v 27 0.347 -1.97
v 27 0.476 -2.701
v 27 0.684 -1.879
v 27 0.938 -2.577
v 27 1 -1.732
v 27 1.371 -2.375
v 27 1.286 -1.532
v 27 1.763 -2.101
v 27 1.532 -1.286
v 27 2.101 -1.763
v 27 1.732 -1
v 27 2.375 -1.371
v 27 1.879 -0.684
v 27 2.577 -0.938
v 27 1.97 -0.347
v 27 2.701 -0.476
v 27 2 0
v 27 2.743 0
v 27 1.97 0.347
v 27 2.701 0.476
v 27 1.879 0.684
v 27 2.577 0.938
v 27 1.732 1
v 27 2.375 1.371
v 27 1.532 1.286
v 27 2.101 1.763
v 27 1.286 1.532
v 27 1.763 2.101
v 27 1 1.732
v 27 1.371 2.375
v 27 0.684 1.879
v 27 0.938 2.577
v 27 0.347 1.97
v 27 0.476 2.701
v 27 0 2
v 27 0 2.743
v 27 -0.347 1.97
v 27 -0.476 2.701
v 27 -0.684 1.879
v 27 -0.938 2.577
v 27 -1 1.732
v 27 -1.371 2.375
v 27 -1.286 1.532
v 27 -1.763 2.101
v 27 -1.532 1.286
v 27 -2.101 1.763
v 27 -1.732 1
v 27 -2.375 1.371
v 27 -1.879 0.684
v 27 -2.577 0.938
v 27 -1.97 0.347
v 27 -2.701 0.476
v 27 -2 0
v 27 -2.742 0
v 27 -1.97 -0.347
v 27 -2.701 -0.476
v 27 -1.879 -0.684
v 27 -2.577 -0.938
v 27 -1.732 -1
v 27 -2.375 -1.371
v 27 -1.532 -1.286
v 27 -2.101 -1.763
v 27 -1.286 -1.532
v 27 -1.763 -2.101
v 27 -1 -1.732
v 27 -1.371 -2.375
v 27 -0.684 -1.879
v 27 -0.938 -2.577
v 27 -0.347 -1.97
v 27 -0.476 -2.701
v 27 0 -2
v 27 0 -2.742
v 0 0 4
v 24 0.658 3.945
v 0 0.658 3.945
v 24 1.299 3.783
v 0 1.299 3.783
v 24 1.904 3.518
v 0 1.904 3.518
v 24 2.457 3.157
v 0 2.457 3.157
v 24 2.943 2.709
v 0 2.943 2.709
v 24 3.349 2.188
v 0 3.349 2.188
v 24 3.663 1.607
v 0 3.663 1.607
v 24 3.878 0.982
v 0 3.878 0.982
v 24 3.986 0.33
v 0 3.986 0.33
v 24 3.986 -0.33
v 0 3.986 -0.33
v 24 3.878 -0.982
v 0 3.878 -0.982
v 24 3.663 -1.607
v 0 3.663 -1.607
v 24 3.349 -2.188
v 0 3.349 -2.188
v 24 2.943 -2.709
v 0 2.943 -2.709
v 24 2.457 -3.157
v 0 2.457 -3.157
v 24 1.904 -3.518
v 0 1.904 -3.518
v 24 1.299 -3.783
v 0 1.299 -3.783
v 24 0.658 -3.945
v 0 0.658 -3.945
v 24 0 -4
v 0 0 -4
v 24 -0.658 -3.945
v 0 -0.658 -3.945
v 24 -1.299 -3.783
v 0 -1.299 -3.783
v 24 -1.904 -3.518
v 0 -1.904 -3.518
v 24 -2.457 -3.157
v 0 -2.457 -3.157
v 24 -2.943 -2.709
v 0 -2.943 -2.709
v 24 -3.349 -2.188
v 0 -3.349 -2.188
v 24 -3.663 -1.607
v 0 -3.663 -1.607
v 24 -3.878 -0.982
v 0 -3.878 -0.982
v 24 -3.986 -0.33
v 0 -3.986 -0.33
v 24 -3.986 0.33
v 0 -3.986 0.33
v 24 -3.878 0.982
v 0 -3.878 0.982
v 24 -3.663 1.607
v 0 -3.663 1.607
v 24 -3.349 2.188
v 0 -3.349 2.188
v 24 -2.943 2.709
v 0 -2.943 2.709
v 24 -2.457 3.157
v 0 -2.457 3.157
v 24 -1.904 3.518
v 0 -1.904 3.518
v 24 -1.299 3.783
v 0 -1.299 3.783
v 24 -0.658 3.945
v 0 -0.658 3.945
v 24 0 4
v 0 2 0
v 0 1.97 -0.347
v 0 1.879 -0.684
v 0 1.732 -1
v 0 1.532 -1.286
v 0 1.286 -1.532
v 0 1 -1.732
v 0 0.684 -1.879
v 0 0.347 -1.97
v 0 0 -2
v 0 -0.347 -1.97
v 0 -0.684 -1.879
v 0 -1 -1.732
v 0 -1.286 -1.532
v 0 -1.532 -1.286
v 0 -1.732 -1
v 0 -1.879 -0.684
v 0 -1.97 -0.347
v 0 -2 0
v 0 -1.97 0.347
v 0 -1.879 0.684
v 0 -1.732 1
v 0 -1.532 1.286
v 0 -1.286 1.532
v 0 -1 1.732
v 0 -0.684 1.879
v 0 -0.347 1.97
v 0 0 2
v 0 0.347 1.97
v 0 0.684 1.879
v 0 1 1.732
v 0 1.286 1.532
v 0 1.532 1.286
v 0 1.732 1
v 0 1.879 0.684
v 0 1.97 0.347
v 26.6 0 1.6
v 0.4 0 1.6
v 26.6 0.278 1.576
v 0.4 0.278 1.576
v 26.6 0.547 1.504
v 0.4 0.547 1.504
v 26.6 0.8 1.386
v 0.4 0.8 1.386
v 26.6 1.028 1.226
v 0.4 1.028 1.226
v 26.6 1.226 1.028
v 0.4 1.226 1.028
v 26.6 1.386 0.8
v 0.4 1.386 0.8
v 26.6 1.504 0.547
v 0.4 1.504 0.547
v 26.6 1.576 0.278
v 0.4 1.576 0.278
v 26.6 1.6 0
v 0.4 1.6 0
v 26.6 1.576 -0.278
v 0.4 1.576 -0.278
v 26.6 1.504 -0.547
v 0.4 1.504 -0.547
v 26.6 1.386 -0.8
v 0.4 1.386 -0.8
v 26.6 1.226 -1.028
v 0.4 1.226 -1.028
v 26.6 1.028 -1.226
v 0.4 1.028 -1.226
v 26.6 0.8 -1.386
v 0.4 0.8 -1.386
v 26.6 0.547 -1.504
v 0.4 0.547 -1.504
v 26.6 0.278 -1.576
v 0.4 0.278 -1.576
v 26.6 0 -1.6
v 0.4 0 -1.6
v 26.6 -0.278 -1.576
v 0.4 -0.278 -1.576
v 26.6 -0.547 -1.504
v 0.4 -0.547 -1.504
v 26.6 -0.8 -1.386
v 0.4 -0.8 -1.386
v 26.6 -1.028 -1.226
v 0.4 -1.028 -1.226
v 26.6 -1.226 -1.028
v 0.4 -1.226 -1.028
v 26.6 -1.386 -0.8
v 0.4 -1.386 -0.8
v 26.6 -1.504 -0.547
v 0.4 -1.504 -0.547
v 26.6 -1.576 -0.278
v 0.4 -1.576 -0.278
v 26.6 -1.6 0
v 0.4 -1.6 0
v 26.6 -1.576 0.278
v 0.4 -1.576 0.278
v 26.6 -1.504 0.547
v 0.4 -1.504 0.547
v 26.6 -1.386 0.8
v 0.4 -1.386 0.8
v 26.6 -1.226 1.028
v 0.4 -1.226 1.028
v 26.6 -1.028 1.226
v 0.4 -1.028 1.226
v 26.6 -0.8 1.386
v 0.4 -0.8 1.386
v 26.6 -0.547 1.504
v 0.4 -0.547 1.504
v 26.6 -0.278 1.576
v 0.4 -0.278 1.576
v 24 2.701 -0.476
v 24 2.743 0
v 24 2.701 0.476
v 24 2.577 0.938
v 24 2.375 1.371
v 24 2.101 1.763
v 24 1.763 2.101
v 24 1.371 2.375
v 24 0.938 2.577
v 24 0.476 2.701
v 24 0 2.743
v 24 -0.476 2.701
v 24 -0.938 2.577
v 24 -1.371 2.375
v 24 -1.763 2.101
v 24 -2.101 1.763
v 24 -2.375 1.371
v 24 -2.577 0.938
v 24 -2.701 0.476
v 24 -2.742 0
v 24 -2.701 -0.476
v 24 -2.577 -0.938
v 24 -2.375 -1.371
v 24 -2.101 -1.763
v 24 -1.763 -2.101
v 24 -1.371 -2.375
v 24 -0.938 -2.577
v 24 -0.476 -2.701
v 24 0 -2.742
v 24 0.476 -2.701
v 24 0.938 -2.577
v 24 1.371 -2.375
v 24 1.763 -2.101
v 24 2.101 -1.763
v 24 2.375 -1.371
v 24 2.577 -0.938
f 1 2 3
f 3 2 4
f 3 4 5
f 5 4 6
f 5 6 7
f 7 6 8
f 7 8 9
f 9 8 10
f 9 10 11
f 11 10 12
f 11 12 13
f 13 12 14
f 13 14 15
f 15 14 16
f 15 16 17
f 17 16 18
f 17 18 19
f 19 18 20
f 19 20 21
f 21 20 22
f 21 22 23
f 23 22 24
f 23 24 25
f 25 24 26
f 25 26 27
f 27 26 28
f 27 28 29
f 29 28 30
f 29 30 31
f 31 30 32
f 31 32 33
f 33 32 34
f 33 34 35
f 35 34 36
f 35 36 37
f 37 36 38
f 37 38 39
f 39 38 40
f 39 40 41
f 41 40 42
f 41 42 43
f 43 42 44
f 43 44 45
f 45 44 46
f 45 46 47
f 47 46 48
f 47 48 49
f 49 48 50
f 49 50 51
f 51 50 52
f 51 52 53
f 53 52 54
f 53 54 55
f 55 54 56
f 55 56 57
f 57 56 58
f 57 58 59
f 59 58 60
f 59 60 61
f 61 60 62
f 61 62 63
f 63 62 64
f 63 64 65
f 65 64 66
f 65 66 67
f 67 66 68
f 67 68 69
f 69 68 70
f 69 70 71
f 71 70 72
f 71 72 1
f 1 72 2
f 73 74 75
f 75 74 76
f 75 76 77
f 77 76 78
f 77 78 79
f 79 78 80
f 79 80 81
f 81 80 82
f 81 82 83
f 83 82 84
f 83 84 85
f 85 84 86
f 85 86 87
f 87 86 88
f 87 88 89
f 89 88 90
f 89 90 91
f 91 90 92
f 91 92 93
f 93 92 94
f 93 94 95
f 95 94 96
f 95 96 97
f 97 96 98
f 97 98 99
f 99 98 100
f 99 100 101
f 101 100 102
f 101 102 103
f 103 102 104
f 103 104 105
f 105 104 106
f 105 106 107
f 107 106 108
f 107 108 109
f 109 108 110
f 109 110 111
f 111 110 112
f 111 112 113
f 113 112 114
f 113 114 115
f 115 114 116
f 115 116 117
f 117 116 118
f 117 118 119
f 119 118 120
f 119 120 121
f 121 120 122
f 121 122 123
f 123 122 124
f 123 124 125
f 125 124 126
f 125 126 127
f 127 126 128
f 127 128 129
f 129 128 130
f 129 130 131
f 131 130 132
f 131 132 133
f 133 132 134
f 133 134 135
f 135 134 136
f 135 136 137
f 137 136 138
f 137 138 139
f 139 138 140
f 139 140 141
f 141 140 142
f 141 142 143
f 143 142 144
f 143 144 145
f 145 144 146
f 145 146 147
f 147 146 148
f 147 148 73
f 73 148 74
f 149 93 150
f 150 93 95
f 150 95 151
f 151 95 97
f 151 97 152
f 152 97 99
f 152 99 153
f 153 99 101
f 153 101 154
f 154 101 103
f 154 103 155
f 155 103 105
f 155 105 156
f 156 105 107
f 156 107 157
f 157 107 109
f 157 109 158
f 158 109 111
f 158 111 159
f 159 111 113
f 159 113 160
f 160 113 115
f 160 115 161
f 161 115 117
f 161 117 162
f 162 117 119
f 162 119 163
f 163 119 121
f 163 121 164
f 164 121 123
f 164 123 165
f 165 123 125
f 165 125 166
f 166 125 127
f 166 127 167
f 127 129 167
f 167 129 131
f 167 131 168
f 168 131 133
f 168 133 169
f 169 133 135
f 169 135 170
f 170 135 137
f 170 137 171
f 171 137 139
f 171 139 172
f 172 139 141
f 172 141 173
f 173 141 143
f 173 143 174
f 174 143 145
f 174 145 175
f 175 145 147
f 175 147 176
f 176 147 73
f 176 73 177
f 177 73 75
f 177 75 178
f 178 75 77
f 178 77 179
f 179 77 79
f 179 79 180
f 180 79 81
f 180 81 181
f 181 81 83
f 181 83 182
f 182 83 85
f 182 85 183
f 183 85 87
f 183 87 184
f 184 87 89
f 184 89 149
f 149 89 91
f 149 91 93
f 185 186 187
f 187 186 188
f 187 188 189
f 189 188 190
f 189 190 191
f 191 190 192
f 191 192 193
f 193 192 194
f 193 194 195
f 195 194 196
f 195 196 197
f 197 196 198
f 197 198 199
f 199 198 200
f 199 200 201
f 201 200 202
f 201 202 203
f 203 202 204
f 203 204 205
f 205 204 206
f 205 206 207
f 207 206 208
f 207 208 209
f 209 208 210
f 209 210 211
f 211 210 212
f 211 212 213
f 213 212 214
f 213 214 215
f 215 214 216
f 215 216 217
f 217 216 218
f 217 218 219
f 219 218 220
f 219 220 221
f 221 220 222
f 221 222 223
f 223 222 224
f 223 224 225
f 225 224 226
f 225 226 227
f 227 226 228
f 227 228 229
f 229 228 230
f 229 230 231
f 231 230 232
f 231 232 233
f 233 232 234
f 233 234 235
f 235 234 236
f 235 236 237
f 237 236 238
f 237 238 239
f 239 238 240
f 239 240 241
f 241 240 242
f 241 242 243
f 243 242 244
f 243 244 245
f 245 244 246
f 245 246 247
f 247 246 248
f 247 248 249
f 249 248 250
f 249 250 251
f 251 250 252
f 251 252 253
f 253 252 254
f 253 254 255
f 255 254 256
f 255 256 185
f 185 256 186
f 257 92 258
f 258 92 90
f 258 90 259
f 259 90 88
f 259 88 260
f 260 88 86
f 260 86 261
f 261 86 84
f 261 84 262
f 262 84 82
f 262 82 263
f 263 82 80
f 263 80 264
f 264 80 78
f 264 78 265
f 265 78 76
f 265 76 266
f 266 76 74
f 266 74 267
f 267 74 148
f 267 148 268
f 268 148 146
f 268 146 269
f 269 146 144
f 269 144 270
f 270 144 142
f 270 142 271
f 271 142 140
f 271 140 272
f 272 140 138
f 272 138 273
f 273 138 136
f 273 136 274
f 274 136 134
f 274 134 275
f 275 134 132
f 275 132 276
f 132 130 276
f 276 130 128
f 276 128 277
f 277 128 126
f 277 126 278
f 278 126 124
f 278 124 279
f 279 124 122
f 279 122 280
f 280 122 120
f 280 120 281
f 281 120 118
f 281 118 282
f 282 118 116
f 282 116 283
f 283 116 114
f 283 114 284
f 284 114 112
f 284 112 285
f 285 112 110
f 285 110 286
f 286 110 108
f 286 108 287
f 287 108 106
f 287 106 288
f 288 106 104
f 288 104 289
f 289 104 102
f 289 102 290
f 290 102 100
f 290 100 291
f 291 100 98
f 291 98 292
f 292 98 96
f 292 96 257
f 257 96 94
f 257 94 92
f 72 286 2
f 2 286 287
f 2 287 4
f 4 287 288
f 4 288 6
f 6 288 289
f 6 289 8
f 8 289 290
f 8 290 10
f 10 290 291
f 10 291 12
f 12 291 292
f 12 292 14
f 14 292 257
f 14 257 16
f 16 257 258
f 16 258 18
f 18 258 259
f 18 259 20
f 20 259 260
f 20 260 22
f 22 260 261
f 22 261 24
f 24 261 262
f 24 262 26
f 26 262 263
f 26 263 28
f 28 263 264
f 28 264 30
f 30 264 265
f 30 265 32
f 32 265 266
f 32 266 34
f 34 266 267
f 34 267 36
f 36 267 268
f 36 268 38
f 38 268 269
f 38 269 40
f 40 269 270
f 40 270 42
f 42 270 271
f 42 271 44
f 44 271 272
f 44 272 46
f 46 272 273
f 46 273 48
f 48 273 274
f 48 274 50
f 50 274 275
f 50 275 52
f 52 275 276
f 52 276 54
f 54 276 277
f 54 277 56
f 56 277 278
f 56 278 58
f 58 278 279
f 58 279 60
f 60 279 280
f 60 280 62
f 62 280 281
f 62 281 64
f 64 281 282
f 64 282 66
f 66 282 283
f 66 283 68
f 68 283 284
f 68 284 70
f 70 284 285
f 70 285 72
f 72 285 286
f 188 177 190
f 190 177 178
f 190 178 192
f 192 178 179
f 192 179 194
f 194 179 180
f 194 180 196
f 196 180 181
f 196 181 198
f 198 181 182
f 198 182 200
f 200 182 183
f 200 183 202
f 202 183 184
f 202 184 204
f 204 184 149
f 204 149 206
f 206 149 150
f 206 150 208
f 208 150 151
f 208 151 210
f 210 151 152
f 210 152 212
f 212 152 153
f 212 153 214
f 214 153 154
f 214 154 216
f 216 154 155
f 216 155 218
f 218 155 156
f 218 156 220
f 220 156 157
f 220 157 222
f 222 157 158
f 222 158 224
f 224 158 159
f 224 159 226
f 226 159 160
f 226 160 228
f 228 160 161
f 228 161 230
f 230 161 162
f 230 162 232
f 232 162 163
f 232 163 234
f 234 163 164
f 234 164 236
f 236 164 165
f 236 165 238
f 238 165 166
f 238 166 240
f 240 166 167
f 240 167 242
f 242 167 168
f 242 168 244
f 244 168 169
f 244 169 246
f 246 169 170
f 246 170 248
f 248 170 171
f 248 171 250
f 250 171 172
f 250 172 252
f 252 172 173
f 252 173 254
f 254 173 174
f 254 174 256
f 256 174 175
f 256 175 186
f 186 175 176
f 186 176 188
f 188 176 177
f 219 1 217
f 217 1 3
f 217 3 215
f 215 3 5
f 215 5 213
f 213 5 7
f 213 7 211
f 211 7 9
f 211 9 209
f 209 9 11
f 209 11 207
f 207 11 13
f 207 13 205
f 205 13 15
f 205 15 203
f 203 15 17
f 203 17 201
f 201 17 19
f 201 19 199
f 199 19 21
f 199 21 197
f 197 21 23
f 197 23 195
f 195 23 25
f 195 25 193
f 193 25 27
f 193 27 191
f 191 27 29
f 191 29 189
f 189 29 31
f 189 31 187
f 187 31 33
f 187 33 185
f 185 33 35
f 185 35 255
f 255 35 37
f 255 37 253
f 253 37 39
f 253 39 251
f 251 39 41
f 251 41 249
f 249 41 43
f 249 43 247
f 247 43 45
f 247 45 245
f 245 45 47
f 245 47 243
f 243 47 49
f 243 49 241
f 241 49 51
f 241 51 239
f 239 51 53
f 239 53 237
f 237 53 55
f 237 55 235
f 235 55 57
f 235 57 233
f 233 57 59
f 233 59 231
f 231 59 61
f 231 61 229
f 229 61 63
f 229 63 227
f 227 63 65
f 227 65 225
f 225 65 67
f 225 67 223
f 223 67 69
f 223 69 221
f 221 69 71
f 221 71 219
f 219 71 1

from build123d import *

# Parameters (mm, degrees)
SKIZZE1_R                       = 4
SKIZZE1_R_2                     = 1.6
AUFSATZ_LINEAR_AUSTRAGEN1_DEPTH = 27
SKIZZE2_OUTSIDE_W               = 15.854
SKIZZE2_OUTSIDE_H               = 15.854
SKIZZE2_OUTSIDE_R               = 2.7425
SCHNITT_LINEAR_AUSTRAGEN1_DEPTH = 3
FASE1_SIZE                      = 0.4


with BuildPart() as part:
    # Skizze1 → Aufsatz-Linear austragen1 (new body)
    with BuildSketch(Plane(origin=(0, 0, 0), x_dir=(0, 0, -1), z_dir=(1, 0, 0))):
        Circle(SKIZZE1_R)
        Circle(SKIZZE1_R_2, mode=Mode.SUBTRACT)
    extrude(amount=AUFSATZ_LINEAR_AUSTRAGEN1_DEPTH)

    # Skizze2 outside → Schnitt-Linear austragen1 (cut)
    with BuildSketch(Plane(origin=(27, 0, 0), x_dir=(0, 0, -1), z_dir=(1, 0, 0))):
        Rectangle(SKIZZE2_OUTSIDE_W, SKIZZE2_OUTSIDE_H)
        Circle(SKIZZE2_OUTSIDE_R, mode=Mode.SUBTRACT)
    extrude(amount=-SCHNITT_LINEAR_AUSTRAGEN1_DEPTH, mode=Mode.SUBTRACT)

    # Fase1
    fase1_edges = [part.edges().sort_by_distance(p)[0] for p in [
        (0, 0, 1.6),
        (27, 0, 1.6),
    ]]
    chamfer(fase1_edges, length=FASE1_SIZE)


solid = part.part
